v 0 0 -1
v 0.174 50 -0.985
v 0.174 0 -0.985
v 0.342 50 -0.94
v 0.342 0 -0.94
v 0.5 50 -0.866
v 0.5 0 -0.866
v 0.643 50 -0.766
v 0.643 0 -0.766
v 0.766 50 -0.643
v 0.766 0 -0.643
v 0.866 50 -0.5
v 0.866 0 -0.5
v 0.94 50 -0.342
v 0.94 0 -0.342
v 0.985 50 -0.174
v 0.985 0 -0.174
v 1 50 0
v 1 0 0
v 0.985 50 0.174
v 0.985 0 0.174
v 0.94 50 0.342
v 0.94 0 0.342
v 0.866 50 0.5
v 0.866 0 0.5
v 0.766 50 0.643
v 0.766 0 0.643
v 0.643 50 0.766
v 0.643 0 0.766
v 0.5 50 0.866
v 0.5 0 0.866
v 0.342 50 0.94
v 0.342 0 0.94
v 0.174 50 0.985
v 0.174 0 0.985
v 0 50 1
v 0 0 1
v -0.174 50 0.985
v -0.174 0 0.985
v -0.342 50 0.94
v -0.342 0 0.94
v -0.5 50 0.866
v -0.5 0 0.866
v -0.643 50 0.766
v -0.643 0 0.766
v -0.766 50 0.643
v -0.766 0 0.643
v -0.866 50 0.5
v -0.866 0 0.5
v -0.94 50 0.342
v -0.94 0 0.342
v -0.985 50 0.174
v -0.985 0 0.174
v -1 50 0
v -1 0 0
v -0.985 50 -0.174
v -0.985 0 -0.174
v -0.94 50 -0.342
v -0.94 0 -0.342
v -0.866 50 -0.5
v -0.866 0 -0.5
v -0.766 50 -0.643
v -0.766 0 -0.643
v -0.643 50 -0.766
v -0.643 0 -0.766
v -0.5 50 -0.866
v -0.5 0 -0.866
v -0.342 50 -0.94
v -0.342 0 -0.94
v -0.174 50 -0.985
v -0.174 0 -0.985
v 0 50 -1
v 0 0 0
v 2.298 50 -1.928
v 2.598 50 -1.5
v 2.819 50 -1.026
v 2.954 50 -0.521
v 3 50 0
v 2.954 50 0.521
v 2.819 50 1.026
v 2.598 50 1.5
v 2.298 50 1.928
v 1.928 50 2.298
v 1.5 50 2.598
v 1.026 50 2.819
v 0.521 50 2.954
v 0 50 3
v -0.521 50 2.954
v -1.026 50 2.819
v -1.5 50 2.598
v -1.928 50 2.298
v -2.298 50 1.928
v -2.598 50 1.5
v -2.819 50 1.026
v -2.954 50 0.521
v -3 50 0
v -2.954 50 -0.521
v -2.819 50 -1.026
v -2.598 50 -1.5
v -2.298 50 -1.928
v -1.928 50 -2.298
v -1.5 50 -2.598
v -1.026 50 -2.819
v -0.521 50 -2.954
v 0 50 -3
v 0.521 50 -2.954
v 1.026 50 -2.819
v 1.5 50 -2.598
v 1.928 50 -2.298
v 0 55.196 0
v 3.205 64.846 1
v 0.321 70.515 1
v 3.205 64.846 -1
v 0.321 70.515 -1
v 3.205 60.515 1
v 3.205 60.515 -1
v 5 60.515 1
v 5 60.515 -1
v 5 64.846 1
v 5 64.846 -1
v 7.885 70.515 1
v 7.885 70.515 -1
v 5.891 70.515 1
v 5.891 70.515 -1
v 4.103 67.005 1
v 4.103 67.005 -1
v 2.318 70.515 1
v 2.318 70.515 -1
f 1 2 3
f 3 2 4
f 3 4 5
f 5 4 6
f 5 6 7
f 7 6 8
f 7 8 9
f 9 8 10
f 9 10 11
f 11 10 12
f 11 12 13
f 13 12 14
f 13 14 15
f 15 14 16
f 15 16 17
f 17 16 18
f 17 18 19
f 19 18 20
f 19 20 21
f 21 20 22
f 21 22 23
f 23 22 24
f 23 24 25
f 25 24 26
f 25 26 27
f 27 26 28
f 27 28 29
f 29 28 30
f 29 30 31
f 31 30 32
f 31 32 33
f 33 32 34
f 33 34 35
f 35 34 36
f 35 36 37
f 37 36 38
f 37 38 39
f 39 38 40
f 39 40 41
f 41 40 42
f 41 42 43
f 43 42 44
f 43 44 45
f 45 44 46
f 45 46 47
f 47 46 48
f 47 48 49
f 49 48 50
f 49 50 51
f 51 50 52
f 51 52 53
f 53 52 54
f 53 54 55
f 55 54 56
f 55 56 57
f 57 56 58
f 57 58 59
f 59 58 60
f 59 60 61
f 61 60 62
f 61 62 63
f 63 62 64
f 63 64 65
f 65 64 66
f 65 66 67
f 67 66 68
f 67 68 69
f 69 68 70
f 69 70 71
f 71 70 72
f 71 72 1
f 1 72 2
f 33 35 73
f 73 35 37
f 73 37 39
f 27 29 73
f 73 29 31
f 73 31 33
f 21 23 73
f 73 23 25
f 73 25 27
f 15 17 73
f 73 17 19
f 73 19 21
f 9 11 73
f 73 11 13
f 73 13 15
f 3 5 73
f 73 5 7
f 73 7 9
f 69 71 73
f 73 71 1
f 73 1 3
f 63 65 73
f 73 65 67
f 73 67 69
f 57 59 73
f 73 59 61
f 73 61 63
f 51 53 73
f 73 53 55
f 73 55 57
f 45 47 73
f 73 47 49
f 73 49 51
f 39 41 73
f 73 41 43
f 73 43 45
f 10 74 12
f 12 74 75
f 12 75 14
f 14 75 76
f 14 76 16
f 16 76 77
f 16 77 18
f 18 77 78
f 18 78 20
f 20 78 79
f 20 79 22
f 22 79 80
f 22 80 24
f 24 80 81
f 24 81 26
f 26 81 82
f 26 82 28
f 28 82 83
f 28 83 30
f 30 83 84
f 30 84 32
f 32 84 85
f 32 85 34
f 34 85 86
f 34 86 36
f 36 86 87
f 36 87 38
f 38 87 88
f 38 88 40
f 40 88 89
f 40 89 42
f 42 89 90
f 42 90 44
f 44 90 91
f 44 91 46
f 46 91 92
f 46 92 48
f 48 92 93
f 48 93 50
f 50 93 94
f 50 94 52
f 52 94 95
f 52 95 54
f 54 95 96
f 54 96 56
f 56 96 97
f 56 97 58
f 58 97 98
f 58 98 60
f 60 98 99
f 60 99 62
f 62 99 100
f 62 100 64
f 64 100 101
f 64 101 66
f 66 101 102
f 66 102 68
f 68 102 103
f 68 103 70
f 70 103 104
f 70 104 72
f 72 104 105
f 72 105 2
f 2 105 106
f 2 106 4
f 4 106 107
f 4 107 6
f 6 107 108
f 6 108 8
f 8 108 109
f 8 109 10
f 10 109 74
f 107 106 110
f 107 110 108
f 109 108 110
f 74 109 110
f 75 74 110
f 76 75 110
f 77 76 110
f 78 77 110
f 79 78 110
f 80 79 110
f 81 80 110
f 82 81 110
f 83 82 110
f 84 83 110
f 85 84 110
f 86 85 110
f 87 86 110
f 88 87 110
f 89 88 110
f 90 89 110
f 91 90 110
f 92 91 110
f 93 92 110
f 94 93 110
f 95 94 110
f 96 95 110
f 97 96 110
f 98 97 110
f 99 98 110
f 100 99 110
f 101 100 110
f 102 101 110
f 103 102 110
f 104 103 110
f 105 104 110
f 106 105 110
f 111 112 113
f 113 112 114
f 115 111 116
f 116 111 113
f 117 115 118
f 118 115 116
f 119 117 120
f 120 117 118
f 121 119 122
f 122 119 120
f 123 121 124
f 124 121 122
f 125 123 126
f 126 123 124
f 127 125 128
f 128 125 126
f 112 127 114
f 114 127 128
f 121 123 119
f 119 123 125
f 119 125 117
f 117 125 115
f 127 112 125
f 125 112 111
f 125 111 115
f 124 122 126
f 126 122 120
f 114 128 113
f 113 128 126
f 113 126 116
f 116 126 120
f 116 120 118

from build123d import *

# Parameters (mm, degrees)
SKETCH1_R           = 1
BOSS_EXTRUDE1_DEPTH = 50
BOSS_EXTRUDE2_DEPTH = 1


with BuildPart() as part:
    # Sketch1 → Boss-Extrude1 (new body)
    with BuildSketch(Plane(origin=(0, 0, 0), x_dir=(1, 0, 0), z_dir=(0, 1, 0))):
        with Locations(Location((0, 0, 0), (0, 0, 270))):
            Circle(SKETCH1_R)
    extrude(amount=BOSS_EXTRUDE1_DEPTH)

    # Sketch2 → Revolve1 (revolve)
    with BuildSketch(Plane.XY, mode=Mode.PRIVATE) as revolve1_sk:
        Polygon((0, 50), (-3, 50), (0, 55.196152423), align=None)
    revolve(revolve1_sk.sketch.rotate(Axis((0, 55.196152423, 0), (0, -1, 0)), 90), axis=Axis((0, 55.196152423, 0), (0, -1, 0)))


with BuildPart() as body_2:
    # Sketch3 → Boss-Extrude2 (new, symmetric)
    with BuildSketch(Plane.XY):
        Polygon((0.320512821, 70.515088714), (2.317708333, 70.515088714), (4.102564103, 67.00547333), (5.891426282, 70.515088714), (7.884615385, 70.515088714), (5, 64.846018202), (5, 60.515088714), (3.205128205, 60.515088714), (3.205128205, 64.846018202), align=None)
    extrude(amount=BOSS_EXTRUDE2_DEPTH, both=True)


solid = Compound([part.part, body_2.part])
